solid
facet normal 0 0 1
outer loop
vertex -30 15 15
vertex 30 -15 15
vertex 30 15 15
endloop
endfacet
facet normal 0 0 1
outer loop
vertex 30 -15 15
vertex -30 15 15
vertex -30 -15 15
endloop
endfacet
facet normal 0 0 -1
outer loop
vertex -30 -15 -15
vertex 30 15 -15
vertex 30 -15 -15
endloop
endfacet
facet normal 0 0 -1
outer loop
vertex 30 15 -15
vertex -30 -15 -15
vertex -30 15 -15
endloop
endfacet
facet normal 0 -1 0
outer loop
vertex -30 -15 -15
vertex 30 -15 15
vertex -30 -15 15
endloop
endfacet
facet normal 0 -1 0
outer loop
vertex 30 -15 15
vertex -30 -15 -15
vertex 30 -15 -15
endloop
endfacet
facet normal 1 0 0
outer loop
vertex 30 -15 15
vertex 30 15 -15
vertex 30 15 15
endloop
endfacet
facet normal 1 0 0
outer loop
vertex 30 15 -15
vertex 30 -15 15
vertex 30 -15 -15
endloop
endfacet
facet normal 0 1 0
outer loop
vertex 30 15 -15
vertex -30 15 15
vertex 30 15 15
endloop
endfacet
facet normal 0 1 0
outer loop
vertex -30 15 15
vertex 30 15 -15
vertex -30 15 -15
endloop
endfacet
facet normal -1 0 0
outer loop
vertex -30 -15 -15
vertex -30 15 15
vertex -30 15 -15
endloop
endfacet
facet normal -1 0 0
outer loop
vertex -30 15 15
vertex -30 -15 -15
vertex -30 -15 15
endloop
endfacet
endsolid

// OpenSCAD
//Instructions: 
//   a. Rotate view (press mouse, move one finger) 
//   b. Zoom view (two fingers) 
//   c. Preview (Design menu) 
//   d. Render (Design menu) 
//   e. Save (File menu)
//   f. Export as STL (File menu)


cube([60,30,30], center =true, $fn=100); 	
